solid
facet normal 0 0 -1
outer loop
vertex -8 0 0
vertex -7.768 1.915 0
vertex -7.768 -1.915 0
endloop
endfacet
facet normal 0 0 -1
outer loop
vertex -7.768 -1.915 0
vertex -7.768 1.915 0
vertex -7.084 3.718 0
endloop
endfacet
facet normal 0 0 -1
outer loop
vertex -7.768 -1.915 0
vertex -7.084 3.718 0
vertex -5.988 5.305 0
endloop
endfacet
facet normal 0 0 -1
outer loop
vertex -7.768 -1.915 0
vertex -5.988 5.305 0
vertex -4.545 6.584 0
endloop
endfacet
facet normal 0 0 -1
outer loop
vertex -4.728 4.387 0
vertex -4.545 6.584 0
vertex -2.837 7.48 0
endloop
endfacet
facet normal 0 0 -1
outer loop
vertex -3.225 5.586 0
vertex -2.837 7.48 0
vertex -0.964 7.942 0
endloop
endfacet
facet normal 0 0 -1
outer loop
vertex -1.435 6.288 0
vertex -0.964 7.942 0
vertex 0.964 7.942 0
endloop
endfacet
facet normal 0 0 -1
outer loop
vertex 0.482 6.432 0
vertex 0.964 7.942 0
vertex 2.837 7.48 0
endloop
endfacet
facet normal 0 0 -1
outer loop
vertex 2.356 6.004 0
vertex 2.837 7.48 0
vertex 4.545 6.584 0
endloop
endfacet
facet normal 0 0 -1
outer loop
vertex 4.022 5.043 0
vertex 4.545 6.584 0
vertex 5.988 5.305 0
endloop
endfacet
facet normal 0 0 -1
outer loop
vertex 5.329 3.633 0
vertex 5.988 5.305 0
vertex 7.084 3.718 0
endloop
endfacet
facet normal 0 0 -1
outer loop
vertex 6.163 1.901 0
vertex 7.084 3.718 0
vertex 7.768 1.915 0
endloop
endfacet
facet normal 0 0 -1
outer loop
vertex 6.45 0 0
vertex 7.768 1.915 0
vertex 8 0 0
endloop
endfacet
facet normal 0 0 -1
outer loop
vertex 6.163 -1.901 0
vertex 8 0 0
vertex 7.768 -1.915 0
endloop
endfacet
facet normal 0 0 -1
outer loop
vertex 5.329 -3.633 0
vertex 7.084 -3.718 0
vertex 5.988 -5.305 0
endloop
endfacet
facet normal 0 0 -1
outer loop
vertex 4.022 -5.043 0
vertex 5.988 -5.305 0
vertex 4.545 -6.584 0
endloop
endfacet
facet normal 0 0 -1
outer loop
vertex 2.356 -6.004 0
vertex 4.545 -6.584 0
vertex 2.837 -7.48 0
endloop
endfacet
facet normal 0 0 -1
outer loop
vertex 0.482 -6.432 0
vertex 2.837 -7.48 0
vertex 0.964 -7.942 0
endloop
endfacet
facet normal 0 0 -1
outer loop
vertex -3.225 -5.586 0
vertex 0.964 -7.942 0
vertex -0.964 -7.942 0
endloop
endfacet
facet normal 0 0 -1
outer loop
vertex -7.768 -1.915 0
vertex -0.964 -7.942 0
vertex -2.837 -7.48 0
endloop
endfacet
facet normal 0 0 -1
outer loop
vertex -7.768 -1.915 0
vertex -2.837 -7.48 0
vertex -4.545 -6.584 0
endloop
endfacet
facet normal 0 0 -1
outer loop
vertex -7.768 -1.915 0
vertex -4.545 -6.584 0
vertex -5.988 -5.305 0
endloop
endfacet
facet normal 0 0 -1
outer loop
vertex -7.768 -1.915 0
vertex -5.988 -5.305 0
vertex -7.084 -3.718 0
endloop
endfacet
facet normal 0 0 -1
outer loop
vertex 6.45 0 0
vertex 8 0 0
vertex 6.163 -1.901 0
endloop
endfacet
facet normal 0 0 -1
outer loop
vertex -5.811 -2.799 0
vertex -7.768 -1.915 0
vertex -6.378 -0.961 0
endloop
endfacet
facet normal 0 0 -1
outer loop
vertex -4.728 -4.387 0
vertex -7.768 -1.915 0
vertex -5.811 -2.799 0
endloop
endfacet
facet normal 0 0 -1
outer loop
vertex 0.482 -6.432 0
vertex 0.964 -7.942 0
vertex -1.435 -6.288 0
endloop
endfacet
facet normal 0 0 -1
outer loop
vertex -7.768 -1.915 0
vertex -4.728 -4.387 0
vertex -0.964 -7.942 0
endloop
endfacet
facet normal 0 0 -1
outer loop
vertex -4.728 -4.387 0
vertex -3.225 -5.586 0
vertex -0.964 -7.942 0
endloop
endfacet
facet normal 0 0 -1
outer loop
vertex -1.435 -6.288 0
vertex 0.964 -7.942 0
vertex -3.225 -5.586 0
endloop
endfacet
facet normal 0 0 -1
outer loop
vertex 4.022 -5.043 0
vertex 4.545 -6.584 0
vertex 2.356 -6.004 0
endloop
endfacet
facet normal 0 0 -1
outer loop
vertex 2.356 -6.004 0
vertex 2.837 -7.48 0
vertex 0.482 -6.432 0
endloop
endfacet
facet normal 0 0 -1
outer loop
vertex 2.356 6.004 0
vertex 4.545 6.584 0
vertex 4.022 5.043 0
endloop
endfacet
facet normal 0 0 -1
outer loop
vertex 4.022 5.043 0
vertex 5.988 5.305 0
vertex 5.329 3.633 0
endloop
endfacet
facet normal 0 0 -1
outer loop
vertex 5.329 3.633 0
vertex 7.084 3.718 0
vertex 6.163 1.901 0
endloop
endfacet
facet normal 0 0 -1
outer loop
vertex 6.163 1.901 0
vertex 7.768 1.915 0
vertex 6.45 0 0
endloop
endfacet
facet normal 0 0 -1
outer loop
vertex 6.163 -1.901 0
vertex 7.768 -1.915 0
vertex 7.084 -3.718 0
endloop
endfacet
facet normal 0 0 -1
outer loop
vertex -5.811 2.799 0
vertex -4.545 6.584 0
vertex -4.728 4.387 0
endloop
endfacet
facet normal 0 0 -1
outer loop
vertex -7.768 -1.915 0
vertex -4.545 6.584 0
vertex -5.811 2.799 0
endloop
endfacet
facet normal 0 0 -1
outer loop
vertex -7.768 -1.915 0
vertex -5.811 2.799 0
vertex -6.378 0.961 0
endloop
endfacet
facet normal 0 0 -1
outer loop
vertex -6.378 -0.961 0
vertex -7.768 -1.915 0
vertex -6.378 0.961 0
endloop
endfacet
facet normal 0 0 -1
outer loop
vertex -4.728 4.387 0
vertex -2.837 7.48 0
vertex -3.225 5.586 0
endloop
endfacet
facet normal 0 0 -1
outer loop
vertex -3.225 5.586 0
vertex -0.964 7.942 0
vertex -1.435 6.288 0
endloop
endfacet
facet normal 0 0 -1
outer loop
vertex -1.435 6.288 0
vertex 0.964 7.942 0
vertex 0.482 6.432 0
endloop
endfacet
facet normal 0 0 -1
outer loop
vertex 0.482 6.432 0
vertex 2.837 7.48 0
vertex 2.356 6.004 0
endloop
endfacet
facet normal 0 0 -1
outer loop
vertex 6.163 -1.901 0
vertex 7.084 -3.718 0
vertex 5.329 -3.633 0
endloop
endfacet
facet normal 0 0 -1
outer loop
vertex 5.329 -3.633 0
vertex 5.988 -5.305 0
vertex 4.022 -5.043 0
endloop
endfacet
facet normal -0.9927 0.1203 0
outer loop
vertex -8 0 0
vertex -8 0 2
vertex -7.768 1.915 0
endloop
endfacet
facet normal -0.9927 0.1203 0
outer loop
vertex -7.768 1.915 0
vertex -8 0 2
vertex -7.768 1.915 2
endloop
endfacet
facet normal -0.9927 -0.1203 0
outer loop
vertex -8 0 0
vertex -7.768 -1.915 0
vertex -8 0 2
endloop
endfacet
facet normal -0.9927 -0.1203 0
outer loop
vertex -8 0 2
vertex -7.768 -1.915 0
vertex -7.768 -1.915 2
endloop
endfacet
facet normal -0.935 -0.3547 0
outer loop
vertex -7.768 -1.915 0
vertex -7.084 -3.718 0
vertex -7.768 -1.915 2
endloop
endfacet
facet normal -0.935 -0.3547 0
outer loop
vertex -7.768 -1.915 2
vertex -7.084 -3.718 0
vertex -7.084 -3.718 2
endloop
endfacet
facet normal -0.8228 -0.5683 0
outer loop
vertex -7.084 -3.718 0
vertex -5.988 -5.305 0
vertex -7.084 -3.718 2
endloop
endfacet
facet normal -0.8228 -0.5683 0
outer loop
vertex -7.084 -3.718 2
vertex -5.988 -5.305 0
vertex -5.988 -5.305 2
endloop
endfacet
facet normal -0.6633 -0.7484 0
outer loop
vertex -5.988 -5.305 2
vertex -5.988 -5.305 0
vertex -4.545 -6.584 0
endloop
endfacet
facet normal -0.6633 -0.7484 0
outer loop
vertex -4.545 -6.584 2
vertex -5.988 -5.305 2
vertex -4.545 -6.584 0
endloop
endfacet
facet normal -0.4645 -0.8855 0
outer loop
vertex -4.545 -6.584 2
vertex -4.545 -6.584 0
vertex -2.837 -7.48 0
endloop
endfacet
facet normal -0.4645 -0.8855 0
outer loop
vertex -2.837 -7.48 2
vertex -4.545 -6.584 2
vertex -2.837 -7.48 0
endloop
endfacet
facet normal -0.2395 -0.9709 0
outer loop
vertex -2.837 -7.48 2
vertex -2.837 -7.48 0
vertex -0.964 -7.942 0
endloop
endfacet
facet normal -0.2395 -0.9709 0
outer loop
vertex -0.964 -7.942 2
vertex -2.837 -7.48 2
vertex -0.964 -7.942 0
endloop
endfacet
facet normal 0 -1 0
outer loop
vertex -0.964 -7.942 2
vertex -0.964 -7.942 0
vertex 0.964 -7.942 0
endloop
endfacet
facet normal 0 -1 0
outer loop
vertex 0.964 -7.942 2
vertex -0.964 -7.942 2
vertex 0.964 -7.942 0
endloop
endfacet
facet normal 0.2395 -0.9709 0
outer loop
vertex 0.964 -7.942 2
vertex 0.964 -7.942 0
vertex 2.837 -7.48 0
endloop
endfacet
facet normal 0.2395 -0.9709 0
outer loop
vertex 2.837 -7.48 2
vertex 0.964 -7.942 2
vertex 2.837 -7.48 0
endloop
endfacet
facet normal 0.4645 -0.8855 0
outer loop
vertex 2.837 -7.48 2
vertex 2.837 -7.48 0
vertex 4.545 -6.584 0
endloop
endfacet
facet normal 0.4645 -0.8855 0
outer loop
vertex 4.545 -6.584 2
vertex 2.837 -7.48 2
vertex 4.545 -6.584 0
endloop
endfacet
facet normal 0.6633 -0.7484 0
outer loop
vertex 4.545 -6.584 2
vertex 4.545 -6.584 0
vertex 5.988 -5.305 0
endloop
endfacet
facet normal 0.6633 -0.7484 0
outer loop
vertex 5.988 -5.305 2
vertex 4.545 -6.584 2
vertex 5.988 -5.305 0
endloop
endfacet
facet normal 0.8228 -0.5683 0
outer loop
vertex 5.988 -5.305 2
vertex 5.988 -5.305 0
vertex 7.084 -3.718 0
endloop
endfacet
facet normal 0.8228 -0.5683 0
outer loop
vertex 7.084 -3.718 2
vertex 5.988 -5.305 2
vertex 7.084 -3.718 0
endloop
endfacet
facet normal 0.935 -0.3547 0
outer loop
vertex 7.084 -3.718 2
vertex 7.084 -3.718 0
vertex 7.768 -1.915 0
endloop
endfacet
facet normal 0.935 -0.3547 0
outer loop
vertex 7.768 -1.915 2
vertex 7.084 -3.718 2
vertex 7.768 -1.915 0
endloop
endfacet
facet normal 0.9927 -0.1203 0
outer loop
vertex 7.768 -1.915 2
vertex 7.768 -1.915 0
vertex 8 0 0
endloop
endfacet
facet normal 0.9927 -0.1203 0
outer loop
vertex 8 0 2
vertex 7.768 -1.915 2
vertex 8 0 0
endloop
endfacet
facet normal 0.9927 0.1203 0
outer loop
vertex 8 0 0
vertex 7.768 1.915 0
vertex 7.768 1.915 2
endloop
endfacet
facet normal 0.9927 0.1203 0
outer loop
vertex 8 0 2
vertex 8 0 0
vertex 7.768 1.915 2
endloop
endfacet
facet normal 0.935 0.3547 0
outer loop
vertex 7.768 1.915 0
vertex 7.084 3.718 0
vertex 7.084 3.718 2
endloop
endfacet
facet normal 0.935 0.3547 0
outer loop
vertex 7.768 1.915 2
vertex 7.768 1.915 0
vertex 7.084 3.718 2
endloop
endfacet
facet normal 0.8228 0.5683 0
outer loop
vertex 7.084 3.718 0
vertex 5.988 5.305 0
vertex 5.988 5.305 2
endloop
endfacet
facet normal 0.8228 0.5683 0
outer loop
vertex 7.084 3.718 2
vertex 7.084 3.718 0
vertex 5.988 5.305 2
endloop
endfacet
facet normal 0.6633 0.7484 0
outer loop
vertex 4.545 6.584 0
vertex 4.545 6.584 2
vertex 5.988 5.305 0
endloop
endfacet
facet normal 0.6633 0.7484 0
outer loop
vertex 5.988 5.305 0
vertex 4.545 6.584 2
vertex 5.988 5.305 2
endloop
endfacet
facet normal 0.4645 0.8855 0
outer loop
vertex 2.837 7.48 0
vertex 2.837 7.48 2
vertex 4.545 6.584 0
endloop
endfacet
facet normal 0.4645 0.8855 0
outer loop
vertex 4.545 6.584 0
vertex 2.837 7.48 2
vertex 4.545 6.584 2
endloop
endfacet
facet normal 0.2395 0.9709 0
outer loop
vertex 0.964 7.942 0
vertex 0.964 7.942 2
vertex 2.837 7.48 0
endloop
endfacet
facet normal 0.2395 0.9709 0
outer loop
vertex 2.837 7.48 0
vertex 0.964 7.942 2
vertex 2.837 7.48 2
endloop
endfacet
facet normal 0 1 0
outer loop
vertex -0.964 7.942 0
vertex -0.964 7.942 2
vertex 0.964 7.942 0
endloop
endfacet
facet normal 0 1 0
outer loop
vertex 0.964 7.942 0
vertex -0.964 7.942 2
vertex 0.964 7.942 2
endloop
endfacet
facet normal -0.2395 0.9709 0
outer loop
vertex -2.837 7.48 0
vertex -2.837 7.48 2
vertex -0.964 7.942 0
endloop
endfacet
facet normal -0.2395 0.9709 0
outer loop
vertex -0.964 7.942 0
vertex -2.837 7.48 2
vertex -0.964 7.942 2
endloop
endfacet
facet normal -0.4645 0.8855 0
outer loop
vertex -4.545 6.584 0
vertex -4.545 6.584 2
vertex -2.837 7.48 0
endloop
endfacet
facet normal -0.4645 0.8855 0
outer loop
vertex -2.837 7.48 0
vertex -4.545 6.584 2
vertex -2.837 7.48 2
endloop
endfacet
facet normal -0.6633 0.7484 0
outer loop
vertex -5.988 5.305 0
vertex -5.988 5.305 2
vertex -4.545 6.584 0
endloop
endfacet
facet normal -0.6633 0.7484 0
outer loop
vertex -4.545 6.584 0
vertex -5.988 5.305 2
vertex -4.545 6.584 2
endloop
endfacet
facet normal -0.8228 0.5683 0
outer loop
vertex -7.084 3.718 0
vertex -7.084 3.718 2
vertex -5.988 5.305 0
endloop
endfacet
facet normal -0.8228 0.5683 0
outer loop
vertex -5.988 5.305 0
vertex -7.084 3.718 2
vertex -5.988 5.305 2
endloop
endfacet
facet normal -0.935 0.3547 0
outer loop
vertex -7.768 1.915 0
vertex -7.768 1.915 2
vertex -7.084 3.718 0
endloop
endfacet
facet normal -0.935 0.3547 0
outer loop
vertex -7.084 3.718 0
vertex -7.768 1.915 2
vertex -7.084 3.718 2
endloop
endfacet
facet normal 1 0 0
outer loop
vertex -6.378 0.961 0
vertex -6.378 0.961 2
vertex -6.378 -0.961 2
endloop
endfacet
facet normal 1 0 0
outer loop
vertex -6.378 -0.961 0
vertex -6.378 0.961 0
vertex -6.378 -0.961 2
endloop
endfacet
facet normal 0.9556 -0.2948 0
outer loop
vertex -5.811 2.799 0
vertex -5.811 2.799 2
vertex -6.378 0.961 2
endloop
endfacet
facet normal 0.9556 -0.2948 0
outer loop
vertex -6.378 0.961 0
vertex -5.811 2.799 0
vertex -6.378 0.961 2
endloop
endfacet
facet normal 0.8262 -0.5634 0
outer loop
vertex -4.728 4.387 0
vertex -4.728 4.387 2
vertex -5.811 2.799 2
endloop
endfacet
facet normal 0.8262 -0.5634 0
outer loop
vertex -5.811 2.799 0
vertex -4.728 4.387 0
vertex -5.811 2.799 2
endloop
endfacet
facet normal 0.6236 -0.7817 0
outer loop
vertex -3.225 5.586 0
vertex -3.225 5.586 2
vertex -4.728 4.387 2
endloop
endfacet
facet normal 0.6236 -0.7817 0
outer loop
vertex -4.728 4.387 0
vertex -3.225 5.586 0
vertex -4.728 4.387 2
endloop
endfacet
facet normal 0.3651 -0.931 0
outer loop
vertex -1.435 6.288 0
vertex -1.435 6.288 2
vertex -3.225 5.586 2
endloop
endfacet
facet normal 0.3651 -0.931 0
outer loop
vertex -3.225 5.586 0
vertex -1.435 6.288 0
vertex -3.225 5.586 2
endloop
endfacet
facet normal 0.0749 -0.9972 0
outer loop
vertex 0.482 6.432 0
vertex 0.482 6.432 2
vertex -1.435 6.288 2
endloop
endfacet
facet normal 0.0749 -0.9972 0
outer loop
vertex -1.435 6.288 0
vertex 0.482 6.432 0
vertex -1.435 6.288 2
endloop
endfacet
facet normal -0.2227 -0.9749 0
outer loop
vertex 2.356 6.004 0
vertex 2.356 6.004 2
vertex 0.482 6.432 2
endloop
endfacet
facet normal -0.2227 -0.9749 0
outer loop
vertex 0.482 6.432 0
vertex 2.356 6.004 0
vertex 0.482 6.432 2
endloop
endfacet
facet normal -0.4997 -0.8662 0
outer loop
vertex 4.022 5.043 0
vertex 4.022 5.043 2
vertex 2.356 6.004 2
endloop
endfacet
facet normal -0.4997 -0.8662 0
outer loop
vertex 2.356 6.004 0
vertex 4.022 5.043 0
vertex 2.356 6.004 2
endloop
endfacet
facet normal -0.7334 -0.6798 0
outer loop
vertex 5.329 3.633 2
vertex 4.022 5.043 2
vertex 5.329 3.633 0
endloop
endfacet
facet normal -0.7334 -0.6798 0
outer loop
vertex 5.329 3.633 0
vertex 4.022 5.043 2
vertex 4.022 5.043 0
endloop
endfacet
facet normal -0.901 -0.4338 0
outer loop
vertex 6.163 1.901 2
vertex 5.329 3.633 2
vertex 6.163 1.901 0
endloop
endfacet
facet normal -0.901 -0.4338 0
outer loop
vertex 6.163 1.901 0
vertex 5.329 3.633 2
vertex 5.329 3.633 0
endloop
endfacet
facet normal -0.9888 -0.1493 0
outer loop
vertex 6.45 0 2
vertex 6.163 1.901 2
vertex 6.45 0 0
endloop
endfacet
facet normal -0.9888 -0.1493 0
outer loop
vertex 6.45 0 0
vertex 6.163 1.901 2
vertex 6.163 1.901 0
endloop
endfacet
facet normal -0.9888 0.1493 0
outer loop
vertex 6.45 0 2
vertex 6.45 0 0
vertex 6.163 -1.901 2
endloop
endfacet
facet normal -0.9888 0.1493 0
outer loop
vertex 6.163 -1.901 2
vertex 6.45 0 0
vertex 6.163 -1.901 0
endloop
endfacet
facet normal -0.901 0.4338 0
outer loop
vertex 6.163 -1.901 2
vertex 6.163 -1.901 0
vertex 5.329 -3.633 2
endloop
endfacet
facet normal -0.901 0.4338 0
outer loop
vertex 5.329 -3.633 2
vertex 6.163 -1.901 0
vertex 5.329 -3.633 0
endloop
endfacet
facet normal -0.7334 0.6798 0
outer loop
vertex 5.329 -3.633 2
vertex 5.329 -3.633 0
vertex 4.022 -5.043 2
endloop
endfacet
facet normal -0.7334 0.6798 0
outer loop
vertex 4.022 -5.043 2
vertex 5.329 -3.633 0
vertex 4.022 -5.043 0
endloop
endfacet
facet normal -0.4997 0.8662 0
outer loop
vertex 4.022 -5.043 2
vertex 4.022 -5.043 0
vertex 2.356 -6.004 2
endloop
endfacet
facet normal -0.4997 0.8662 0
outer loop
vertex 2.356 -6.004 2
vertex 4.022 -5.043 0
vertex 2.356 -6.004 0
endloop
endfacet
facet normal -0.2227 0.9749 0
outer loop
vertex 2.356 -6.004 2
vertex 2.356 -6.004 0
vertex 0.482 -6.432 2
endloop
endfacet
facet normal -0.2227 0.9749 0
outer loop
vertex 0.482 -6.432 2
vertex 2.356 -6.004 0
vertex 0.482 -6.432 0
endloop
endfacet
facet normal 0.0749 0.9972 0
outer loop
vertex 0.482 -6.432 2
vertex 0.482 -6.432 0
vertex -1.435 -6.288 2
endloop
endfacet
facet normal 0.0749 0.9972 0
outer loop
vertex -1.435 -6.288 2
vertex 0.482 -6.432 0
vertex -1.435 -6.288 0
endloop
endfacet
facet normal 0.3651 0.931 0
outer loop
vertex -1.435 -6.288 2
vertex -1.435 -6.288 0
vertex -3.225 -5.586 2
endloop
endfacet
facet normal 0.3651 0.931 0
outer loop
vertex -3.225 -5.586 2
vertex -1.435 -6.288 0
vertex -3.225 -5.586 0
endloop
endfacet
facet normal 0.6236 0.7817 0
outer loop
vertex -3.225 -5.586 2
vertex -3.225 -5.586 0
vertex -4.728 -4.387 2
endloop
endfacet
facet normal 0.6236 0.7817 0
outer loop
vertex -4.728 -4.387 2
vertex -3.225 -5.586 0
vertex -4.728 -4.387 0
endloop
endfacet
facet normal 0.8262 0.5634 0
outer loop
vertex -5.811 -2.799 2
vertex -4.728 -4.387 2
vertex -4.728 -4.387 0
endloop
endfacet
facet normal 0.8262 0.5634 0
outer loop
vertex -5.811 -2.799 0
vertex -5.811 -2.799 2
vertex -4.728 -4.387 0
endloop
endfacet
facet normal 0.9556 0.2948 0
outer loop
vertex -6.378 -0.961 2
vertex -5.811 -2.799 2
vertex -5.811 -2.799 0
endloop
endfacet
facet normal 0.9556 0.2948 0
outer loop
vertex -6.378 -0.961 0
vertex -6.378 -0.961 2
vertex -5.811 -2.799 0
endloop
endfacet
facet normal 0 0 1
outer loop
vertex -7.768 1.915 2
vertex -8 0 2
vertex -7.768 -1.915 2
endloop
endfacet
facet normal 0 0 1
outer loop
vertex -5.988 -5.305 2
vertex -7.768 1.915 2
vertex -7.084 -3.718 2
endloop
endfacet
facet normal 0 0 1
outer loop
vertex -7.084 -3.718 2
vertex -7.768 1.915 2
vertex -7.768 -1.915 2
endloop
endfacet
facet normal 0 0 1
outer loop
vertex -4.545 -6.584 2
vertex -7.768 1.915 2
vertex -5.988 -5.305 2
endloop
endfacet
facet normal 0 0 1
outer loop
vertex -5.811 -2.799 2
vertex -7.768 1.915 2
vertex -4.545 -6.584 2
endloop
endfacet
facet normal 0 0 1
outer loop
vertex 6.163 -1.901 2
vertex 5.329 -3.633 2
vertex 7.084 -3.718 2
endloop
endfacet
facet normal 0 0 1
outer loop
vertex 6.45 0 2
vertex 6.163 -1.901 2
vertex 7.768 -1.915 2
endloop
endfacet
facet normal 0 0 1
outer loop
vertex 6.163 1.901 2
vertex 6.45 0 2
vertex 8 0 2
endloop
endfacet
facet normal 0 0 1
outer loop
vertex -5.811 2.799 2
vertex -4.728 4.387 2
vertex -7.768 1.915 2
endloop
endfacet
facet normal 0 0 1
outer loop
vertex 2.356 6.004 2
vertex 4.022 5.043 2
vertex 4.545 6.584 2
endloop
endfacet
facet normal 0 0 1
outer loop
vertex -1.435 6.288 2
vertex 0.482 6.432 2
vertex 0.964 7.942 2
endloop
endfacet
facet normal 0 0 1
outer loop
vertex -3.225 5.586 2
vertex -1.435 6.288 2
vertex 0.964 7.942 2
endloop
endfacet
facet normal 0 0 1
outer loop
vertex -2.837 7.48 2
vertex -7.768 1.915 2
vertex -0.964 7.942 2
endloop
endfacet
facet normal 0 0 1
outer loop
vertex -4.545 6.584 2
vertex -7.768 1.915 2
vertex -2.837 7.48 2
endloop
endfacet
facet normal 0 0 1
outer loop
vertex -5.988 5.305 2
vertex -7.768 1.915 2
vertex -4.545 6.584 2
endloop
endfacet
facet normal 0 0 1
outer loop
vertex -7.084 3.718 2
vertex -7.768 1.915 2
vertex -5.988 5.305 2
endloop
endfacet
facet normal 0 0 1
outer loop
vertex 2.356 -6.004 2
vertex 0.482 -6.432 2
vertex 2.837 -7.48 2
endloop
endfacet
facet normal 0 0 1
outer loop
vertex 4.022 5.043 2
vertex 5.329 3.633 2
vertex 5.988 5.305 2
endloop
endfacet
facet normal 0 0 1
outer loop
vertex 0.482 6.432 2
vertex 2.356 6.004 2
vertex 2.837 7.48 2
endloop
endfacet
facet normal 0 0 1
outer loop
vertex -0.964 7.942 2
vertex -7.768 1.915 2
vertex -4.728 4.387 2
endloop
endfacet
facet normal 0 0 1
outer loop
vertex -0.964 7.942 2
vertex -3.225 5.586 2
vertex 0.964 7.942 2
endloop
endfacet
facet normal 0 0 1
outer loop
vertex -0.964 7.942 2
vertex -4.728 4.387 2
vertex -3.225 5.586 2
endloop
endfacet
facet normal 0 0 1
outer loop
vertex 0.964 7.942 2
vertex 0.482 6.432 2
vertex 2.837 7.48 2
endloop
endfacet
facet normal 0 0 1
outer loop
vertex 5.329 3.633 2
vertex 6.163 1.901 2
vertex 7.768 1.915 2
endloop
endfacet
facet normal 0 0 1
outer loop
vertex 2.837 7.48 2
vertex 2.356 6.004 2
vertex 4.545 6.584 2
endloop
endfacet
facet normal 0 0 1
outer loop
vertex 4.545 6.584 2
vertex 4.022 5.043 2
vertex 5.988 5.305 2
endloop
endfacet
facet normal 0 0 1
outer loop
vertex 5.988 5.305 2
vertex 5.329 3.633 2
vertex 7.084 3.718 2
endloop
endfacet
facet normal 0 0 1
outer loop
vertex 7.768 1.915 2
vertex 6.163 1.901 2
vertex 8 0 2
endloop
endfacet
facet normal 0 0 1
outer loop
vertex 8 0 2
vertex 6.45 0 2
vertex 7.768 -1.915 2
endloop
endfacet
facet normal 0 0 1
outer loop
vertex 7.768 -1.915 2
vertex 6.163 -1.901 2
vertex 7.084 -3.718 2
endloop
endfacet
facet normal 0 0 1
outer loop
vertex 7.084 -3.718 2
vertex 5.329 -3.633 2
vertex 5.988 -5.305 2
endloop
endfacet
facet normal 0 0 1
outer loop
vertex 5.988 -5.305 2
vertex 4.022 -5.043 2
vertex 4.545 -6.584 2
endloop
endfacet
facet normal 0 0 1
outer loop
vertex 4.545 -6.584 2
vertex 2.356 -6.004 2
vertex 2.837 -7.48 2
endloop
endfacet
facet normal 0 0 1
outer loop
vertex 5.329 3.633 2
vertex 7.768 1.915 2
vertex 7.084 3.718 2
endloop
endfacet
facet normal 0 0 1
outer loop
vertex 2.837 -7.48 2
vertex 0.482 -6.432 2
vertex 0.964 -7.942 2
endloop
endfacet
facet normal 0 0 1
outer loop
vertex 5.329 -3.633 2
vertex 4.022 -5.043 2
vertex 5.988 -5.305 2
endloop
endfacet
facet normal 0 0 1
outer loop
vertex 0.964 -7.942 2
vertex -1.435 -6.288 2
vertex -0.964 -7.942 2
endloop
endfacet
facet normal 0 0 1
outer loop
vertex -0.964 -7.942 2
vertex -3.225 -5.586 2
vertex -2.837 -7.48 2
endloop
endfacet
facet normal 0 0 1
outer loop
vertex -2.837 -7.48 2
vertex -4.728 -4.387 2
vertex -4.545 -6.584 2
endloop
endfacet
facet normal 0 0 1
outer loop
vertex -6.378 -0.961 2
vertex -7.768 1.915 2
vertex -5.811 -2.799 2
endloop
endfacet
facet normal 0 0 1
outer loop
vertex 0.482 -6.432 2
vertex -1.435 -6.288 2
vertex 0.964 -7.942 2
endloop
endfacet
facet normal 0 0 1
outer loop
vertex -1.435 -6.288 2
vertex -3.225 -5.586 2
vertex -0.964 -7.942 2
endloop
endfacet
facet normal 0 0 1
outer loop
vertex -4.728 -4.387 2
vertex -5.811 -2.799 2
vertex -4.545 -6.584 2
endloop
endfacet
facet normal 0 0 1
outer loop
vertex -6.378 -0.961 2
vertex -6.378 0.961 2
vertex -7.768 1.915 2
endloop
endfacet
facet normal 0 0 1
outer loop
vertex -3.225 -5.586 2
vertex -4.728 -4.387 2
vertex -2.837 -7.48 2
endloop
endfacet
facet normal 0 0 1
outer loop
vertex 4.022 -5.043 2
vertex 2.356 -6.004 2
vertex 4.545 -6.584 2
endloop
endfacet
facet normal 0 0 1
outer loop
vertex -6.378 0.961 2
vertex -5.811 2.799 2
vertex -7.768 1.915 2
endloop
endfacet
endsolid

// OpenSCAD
use <Thread_Library.scad>
height=2;
bolt=(12.9)/2;
difference(){
   cylinder(height,16/2,16/2);
   cylinder(height,bolt,bolt);
}
